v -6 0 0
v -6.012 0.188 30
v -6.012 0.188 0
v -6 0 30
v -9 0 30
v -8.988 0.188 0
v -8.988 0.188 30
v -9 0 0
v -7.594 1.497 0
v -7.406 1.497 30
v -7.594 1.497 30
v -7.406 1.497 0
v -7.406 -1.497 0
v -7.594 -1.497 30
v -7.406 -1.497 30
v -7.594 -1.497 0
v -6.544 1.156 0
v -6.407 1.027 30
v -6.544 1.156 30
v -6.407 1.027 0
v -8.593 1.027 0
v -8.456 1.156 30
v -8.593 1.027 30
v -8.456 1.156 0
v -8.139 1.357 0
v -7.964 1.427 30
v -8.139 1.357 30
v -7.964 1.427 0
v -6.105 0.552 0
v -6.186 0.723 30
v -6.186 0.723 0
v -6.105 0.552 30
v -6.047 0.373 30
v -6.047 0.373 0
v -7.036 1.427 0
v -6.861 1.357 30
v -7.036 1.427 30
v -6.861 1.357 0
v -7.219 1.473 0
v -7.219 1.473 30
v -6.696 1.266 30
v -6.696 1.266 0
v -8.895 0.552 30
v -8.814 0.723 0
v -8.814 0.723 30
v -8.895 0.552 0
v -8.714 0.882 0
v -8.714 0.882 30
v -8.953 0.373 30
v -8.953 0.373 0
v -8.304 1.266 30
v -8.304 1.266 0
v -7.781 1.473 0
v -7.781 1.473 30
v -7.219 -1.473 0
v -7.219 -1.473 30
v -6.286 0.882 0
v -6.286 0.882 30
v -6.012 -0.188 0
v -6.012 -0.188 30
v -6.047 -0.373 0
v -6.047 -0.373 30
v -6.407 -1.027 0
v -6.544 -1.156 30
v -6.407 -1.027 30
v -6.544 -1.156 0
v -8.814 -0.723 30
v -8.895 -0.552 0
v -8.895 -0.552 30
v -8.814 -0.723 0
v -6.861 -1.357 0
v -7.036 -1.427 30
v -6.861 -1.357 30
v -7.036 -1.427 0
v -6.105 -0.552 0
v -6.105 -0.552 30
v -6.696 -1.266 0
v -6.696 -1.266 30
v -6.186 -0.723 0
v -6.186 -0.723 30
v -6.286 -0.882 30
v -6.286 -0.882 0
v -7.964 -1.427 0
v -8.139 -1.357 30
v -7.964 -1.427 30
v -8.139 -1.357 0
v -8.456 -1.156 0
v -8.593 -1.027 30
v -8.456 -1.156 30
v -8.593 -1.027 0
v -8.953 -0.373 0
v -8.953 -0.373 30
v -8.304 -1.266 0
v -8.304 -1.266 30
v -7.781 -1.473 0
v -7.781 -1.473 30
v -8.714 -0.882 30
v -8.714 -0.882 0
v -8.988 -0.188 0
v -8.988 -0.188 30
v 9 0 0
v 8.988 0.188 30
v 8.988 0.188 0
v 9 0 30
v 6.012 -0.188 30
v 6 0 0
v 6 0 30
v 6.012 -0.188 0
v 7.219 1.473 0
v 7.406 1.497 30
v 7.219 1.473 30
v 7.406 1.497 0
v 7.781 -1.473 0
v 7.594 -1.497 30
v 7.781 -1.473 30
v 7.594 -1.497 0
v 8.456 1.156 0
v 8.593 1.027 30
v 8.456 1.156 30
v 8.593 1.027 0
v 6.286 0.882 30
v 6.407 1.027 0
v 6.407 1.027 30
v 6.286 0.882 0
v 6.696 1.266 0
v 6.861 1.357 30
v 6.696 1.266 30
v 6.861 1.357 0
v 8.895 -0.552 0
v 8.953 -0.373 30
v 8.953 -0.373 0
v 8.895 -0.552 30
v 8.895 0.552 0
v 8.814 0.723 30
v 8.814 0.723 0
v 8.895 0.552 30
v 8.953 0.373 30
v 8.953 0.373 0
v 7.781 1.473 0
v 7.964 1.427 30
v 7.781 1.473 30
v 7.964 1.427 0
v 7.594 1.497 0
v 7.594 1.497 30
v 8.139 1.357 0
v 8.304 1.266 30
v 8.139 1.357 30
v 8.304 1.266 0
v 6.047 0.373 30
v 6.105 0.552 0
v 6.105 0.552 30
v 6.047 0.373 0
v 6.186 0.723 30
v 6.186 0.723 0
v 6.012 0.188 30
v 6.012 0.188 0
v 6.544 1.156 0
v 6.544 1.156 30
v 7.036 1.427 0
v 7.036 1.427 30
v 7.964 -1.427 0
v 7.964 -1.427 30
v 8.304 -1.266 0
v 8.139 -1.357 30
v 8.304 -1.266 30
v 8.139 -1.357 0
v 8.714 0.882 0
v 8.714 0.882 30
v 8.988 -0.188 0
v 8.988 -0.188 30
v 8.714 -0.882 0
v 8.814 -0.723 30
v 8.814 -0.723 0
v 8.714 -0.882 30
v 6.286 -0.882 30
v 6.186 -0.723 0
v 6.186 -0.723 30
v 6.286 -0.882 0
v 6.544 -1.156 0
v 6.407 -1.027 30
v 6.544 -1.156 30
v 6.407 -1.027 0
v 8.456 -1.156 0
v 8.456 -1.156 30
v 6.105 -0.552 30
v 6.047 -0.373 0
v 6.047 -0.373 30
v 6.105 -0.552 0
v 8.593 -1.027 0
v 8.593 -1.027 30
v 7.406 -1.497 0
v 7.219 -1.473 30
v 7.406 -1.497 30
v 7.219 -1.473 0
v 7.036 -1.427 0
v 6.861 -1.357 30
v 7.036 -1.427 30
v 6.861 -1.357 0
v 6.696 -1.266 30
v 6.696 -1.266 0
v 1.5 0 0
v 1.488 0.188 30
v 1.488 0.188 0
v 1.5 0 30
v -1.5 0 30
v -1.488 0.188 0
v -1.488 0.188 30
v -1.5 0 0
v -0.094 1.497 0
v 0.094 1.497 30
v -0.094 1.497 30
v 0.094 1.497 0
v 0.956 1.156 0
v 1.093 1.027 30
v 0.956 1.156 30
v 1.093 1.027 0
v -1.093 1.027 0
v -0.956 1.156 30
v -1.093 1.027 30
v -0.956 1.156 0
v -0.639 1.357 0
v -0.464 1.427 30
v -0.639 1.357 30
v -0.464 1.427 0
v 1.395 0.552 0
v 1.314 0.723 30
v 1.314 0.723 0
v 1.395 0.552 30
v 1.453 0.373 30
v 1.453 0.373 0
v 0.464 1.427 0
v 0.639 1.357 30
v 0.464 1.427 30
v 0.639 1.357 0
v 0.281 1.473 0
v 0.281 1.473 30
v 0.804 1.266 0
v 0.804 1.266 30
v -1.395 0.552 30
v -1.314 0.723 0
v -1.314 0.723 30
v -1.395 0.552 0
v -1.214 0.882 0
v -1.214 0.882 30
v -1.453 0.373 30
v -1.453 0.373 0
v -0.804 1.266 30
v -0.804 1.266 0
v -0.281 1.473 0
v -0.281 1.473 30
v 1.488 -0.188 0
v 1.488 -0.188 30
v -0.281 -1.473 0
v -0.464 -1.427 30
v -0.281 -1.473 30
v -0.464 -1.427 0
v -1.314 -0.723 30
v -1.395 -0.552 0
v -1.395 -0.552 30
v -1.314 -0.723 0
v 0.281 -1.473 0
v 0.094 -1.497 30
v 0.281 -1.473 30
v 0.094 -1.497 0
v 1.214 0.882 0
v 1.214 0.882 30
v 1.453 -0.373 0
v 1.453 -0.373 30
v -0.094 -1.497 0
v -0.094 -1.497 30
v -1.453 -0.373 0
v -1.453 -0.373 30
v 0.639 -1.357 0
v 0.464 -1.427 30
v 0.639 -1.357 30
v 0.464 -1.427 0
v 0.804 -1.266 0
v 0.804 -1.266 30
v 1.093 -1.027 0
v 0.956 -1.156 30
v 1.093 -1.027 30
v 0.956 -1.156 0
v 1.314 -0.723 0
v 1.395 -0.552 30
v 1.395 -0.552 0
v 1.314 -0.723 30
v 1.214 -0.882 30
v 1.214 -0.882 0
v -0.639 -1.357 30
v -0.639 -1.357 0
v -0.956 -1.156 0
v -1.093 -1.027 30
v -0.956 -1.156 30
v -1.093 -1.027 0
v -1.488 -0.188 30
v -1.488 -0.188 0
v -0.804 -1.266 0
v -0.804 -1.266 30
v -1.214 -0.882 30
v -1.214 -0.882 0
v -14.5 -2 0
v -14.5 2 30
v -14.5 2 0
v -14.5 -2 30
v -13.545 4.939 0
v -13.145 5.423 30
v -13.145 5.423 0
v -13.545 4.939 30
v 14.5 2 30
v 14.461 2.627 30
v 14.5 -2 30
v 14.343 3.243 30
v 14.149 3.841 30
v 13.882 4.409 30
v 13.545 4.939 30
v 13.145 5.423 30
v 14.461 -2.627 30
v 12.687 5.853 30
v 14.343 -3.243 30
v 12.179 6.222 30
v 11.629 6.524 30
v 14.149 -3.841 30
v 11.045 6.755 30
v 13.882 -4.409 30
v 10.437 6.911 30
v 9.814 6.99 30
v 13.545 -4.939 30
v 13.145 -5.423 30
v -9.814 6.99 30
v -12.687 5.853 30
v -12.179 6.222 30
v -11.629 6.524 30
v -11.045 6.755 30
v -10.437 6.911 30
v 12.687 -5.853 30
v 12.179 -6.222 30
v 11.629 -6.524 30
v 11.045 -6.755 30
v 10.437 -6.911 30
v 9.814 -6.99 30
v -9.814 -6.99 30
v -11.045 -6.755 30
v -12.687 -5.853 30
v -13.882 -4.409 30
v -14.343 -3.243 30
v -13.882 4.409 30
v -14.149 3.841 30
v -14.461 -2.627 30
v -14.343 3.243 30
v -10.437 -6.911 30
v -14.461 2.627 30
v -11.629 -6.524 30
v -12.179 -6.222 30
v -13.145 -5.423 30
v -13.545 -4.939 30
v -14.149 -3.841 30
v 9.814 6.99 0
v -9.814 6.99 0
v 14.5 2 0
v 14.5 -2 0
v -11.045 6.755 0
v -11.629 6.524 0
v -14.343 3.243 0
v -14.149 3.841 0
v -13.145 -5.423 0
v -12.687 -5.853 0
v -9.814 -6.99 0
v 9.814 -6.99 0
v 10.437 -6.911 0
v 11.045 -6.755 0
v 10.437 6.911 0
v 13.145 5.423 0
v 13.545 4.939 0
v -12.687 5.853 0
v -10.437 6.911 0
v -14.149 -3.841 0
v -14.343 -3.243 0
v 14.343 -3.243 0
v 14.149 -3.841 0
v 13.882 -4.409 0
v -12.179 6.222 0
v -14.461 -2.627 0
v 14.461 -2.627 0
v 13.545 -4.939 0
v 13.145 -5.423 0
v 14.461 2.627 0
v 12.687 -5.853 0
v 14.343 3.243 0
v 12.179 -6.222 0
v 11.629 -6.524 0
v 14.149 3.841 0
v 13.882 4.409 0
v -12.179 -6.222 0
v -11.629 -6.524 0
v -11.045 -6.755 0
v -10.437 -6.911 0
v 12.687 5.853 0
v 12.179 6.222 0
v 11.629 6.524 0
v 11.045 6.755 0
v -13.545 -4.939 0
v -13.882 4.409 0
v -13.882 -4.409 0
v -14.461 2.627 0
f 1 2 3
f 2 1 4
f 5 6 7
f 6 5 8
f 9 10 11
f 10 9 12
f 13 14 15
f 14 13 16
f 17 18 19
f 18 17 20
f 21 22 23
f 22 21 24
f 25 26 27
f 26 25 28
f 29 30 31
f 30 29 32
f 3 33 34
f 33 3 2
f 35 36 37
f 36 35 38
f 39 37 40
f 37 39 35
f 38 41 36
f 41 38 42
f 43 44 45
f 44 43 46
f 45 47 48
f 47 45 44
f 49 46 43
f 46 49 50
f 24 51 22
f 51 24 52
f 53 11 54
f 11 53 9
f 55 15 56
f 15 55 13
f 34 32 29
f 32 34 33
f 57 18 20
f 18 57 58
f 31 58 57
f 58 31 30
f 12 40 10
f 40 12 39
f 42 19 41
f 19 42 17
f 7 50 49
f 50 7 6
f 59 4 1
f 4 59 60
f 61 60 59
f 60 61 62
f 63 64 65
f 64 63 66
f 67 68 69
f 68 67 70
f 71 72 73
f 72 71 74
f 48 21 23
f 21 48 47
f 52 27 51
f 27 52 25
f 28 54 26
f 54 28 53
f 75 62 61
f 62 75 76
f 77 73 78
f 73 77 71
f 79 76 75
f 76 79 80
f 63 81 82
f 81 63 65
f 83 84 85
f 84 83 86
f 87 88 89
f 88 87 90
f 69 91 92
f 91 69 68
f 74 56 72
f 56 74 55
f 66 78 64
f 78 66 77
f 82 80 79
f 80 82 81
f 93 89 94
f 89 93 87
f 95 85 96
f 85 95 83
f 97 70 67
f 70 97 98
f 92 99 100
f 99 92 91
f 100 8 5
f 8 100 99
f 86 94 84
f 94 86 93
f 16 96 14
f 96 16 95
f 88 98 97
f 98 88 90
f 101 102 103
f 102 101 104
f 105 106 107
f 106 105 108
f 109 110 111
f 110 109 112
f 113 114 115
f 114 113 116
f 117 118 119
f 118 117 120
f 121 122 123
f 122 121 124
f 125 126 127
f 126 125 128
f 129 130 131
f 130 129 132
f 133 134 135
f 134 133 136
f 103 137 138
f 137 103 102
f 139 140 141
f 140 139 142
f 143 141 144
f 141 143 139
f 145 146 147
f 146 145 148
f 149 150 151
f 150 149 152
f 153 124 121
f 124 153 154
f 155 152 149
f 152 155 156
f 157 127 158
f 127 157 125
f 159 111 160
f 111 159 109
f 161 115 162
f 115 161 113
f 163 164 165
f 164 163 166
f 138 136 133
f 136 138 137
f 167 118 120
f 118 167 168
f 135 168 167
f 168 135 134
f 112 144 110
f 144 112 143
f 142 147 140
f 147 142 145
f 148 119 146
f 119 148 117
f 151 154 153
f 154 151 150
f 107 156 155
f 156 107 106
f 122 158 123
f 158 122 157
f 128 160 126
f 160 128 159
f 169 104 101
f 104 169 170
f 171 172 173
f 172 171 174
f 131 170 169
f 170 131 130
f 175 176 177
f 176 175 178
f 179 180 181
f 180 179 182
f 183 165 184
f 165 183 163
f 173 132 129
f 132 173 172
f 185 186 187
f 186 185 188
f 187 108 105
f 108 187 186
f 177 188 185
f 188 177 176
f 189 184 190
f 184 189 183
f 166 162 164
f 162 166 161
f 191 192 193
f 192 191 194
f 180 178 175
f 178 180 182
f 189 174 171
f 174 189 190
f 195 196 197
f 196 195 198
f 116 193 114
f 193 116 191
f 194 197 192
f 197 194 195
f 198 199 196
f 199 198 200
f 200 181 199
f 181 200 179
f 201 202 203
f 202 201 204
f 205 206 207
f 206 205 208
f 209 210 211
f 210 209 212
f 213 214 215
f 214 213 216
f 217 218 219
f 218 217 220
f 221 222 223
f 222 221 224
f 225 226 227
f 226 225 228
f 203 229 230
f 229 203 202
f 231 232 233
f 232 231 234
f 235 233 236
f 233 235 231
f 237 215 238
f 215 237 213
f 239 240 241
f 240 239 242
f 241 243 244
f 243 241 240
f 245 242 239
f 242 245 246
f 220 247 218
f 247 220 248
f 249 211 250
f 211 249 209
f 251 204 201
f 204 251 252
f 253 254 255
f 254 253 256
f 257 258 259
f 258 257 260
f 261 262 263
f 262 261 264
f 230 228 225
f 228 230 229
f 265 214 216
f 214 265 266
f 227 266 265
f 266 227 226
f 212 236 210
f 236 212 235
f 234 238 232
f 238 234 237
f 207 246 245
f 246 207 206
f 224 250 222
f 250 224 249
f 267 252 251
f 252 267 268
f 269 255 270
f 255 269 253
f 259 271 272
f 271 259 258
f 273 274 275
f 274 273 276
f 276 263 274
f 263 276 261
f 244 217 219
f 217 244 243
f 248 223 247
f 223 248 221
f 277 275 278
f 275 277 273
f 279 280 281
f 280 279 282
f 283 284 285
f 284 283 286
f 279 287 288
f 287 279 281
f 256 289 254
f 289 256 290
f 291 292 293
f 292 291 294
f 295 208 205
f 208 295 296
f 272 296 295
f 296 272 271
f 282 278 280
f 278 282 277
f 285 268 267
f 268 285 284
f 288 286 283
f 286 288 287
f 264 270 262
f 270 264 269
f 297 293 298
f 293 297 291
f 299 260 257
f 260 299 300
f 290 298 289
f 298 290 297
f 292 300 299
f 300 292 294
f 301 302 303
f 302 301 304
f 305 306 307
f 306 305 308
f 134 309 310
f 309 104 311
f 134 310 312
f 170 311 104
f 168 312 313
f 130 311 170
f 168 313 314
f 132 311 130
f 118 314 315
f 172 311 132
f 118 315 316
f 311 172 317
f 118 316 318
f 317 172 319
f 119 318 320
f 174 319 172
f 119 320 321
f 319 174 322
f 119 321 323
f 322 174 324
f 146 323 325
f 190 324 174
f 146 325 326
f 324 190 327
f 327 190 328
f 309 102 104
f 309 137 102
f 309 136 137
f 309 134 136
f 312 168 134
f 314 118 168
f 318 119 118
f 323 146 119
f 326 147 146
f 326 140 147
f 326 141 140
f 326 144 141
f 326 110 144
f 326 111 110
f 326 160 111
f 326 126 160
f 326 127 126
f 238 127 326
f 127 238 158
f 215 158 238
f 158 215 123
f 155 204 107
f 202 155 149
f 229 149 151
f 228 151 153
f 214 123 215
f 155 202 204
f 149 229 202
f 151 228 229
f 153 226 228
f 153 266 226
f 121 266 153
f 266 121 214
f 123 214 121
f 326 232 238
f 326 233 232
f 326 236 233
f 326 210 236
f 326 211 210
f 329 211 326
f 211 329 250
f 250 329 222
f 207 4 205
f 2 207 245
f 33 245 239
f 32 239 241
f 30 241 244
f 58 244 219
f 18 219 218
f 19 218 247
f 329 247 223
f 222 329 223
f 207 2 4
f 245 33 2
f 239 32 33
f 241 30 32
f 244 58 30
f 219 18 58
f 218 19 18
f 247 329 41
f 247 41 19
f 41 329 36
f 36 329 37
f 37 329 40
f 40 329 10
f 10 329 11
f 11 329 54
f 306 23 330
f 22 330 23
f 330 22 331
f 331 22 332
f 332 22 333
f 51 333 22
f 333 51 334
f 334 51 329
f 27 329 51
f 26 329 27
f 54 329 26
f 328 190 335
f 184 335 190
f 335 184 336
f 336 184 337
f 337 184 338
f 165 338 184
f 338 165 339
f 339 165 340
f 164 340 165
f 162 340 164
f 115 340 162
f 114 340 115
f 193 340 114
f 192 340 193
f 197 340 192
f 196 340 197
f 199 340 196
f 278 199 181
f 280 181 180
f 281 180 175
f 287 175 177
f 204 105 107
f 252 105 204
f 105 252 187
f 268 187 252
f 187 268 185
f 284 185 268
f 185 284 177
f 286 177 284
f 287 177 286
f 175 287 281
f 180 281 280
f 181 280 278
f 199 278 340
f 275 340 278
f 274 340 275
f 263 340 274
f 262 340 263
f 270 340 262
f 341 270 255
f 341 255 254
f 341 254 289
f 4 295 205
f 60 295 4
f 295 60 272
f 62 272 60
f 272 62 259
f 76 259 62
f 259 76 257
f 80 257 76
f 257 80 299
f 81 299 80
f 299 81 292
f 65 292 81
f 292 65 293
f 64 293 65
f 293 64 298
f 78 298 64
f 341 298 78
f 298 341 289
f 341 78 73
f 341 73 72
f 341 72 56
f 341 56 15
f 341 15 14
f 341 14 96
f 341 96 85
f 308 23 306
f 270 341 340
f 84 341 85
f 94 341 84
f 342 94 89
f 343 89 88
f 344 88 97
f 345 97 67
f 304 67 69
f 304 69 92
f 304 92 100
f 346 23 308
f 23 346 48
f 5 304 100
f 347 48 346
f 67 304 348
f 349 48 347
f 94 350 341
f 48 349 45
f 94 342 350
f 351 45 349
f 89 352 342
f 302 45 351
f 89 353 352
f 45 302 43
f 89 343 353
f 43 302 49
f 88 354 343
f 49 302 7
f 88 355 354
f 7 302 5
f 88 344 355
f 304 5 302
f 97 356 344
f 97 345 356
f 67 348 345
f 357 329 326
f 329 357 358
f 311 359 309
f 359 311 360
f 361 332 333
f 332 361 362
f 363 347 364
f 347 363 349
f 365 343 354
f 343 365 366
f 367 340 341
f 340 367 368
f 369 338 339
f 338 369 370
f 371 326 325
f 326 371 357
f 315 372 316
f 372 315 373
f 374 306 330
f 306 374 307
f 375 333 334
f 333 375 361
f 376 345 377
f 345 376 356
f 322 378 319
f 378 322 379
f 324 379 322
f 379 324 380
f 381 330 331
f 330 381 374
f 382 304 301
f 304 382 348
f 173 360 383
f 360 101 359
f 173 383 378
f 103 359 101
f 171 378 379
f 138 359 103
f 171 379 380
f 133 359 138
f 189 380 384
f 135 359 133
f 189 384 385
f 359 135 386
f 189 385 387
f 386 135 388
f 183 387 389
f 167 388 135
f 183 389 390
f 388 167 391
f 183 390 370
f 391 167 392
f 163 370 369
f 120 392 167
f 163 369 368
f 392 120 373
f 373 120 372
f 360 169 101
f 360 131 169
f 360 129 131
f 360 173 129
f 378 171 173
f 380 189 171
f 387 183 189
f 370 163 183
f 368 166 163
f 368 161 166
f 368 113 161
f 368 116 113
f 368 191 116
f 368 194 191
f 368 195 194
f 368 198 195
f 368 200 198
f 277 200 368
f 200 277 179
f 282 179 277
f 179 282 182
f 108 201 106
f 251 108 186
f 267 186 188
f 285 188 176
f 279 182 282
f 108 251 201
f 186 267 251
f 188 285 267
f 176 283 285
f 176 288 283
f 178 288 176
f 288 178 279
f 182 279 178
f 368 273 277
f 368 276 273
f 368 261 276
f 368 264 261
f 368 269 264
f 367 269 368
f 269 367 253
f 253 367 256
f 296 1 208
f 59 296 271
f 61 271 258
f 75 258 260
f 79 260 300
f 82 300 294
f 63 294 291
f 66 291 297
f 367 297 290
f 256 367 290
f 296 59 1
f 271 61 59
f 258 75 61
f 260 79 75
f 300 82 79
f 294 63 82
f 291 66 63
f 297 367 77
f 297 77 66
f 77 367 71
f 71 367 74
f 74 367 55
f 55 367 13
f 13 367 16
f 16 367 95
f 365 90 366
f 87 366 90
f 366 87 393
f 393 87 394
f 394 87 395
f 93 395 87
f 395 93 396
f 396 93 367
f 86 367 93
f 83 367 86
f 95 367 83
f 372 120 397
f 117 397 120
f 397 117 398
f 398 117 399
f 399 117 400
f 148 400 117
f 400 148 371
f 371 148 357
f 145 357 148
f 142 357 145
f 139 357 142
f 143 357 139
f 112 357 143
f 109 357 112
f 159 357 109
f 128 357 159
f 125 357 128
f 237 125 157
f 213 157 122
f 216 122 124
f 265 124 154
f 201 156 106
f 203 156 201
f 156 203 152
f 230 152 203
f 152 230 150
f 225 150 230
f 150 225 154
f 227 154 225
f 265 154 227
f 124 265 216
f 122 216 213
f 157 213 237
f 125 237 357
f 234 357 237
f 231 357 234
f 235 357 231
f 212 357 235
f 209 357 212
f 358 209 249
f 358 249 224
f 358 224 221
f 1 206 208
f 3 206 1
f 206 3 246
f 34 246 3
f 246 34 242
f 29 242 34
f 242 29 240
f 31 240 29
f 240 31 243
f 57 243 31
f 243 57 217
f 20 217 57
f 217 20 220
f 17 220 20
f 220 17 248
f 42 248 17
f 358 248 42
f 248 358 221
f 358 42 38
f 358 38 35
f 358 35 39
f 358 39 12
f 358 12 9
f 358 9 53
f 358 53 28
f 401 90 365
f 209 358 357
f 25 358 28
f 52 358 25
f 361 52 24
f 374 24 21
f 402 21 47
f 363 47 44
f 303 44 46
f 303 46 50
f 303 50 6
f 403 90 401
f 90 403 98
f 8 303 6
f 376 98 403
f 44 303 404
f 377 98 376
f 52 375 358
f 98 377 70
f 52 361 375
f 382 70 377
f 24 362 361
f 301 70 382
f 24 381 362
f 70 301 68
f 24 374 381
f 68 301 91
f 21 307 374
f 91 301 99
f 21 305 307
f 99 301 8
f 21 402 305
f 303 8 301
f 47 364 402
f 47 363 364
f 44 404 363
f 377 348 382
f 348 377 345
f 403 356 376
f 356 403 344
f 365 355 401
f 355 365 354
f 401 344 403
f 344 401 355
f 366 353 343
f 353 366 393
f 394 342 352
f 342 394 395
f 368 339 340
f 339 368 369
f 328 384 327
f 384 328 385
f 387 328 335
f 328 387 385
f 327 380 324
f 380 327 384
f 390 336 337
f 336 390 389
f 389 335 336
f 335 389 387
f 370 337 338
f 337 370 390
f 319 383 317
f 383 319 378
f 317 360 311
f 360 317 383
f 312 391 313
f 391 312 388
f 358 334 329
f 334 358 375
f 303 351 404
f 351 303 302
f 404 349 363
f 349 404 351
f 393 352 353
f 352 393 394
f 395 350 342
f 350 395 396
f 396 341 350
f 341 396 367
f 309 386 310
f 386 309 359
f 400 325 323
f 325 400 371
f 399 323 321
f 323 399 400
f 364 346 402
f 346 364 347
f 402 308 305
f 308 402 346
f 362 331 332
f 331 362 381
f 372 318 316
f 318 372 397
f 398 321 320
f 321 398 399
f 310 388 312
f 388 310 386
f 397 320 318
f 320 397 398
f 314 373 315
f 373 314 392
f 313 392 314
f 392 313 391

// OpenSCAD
$fn = 50;


difference() {
	union() {
		hull() {
			translate(v = [-9.5000000000, 2.0000000000, 0]) {
				cylinder(h = 30, r = 5);
			}
			translate(v = [9.5000000000, 2.0000000000, 0]) {
				cylinder(h = 30, r = 5);
			}
			translate(v = [-9.5000000000, -2.0000000000, 0]) {
				cylinder(h = 30, r = 5);
			}
			translate(v = [9.5000000000, -2.0000000000, 0]) {
				cylinder(h = 30, r = 5);
			}
		}
	}
	union() {
		translate(v = [-7.5000000000, 0.0000000000, 0]) {
			translate(v = [0, 0, -100]) {
				cylinder(h = 200, r = 1.5000000000);
			}
		}
		translate(v = [7.5000000000, 0.0000000000, 0]) {
			translate(v = [0, 0, -100]) {
				cylinder(h = 200, r = 1.5000000000);
			}
		}
		translate(v = [-7.5000000000, 0.0000000000, 0]) {
			translate(v = [0, 0, -100]) {
				cylinder(h = 200, r = 1.5000000000);
			}
		}
		translate(v = [0, 0, -100]) {
			cylinder(h = 200, r = 1.5000000000);
		}
		translate(v = [7.5000000000, 0.0000000000, 0]) {
			translate(v = [0, 0, -100]) {
				cylinder(h = 200, r = 1.5000000000);
			}
		}
	}
}
